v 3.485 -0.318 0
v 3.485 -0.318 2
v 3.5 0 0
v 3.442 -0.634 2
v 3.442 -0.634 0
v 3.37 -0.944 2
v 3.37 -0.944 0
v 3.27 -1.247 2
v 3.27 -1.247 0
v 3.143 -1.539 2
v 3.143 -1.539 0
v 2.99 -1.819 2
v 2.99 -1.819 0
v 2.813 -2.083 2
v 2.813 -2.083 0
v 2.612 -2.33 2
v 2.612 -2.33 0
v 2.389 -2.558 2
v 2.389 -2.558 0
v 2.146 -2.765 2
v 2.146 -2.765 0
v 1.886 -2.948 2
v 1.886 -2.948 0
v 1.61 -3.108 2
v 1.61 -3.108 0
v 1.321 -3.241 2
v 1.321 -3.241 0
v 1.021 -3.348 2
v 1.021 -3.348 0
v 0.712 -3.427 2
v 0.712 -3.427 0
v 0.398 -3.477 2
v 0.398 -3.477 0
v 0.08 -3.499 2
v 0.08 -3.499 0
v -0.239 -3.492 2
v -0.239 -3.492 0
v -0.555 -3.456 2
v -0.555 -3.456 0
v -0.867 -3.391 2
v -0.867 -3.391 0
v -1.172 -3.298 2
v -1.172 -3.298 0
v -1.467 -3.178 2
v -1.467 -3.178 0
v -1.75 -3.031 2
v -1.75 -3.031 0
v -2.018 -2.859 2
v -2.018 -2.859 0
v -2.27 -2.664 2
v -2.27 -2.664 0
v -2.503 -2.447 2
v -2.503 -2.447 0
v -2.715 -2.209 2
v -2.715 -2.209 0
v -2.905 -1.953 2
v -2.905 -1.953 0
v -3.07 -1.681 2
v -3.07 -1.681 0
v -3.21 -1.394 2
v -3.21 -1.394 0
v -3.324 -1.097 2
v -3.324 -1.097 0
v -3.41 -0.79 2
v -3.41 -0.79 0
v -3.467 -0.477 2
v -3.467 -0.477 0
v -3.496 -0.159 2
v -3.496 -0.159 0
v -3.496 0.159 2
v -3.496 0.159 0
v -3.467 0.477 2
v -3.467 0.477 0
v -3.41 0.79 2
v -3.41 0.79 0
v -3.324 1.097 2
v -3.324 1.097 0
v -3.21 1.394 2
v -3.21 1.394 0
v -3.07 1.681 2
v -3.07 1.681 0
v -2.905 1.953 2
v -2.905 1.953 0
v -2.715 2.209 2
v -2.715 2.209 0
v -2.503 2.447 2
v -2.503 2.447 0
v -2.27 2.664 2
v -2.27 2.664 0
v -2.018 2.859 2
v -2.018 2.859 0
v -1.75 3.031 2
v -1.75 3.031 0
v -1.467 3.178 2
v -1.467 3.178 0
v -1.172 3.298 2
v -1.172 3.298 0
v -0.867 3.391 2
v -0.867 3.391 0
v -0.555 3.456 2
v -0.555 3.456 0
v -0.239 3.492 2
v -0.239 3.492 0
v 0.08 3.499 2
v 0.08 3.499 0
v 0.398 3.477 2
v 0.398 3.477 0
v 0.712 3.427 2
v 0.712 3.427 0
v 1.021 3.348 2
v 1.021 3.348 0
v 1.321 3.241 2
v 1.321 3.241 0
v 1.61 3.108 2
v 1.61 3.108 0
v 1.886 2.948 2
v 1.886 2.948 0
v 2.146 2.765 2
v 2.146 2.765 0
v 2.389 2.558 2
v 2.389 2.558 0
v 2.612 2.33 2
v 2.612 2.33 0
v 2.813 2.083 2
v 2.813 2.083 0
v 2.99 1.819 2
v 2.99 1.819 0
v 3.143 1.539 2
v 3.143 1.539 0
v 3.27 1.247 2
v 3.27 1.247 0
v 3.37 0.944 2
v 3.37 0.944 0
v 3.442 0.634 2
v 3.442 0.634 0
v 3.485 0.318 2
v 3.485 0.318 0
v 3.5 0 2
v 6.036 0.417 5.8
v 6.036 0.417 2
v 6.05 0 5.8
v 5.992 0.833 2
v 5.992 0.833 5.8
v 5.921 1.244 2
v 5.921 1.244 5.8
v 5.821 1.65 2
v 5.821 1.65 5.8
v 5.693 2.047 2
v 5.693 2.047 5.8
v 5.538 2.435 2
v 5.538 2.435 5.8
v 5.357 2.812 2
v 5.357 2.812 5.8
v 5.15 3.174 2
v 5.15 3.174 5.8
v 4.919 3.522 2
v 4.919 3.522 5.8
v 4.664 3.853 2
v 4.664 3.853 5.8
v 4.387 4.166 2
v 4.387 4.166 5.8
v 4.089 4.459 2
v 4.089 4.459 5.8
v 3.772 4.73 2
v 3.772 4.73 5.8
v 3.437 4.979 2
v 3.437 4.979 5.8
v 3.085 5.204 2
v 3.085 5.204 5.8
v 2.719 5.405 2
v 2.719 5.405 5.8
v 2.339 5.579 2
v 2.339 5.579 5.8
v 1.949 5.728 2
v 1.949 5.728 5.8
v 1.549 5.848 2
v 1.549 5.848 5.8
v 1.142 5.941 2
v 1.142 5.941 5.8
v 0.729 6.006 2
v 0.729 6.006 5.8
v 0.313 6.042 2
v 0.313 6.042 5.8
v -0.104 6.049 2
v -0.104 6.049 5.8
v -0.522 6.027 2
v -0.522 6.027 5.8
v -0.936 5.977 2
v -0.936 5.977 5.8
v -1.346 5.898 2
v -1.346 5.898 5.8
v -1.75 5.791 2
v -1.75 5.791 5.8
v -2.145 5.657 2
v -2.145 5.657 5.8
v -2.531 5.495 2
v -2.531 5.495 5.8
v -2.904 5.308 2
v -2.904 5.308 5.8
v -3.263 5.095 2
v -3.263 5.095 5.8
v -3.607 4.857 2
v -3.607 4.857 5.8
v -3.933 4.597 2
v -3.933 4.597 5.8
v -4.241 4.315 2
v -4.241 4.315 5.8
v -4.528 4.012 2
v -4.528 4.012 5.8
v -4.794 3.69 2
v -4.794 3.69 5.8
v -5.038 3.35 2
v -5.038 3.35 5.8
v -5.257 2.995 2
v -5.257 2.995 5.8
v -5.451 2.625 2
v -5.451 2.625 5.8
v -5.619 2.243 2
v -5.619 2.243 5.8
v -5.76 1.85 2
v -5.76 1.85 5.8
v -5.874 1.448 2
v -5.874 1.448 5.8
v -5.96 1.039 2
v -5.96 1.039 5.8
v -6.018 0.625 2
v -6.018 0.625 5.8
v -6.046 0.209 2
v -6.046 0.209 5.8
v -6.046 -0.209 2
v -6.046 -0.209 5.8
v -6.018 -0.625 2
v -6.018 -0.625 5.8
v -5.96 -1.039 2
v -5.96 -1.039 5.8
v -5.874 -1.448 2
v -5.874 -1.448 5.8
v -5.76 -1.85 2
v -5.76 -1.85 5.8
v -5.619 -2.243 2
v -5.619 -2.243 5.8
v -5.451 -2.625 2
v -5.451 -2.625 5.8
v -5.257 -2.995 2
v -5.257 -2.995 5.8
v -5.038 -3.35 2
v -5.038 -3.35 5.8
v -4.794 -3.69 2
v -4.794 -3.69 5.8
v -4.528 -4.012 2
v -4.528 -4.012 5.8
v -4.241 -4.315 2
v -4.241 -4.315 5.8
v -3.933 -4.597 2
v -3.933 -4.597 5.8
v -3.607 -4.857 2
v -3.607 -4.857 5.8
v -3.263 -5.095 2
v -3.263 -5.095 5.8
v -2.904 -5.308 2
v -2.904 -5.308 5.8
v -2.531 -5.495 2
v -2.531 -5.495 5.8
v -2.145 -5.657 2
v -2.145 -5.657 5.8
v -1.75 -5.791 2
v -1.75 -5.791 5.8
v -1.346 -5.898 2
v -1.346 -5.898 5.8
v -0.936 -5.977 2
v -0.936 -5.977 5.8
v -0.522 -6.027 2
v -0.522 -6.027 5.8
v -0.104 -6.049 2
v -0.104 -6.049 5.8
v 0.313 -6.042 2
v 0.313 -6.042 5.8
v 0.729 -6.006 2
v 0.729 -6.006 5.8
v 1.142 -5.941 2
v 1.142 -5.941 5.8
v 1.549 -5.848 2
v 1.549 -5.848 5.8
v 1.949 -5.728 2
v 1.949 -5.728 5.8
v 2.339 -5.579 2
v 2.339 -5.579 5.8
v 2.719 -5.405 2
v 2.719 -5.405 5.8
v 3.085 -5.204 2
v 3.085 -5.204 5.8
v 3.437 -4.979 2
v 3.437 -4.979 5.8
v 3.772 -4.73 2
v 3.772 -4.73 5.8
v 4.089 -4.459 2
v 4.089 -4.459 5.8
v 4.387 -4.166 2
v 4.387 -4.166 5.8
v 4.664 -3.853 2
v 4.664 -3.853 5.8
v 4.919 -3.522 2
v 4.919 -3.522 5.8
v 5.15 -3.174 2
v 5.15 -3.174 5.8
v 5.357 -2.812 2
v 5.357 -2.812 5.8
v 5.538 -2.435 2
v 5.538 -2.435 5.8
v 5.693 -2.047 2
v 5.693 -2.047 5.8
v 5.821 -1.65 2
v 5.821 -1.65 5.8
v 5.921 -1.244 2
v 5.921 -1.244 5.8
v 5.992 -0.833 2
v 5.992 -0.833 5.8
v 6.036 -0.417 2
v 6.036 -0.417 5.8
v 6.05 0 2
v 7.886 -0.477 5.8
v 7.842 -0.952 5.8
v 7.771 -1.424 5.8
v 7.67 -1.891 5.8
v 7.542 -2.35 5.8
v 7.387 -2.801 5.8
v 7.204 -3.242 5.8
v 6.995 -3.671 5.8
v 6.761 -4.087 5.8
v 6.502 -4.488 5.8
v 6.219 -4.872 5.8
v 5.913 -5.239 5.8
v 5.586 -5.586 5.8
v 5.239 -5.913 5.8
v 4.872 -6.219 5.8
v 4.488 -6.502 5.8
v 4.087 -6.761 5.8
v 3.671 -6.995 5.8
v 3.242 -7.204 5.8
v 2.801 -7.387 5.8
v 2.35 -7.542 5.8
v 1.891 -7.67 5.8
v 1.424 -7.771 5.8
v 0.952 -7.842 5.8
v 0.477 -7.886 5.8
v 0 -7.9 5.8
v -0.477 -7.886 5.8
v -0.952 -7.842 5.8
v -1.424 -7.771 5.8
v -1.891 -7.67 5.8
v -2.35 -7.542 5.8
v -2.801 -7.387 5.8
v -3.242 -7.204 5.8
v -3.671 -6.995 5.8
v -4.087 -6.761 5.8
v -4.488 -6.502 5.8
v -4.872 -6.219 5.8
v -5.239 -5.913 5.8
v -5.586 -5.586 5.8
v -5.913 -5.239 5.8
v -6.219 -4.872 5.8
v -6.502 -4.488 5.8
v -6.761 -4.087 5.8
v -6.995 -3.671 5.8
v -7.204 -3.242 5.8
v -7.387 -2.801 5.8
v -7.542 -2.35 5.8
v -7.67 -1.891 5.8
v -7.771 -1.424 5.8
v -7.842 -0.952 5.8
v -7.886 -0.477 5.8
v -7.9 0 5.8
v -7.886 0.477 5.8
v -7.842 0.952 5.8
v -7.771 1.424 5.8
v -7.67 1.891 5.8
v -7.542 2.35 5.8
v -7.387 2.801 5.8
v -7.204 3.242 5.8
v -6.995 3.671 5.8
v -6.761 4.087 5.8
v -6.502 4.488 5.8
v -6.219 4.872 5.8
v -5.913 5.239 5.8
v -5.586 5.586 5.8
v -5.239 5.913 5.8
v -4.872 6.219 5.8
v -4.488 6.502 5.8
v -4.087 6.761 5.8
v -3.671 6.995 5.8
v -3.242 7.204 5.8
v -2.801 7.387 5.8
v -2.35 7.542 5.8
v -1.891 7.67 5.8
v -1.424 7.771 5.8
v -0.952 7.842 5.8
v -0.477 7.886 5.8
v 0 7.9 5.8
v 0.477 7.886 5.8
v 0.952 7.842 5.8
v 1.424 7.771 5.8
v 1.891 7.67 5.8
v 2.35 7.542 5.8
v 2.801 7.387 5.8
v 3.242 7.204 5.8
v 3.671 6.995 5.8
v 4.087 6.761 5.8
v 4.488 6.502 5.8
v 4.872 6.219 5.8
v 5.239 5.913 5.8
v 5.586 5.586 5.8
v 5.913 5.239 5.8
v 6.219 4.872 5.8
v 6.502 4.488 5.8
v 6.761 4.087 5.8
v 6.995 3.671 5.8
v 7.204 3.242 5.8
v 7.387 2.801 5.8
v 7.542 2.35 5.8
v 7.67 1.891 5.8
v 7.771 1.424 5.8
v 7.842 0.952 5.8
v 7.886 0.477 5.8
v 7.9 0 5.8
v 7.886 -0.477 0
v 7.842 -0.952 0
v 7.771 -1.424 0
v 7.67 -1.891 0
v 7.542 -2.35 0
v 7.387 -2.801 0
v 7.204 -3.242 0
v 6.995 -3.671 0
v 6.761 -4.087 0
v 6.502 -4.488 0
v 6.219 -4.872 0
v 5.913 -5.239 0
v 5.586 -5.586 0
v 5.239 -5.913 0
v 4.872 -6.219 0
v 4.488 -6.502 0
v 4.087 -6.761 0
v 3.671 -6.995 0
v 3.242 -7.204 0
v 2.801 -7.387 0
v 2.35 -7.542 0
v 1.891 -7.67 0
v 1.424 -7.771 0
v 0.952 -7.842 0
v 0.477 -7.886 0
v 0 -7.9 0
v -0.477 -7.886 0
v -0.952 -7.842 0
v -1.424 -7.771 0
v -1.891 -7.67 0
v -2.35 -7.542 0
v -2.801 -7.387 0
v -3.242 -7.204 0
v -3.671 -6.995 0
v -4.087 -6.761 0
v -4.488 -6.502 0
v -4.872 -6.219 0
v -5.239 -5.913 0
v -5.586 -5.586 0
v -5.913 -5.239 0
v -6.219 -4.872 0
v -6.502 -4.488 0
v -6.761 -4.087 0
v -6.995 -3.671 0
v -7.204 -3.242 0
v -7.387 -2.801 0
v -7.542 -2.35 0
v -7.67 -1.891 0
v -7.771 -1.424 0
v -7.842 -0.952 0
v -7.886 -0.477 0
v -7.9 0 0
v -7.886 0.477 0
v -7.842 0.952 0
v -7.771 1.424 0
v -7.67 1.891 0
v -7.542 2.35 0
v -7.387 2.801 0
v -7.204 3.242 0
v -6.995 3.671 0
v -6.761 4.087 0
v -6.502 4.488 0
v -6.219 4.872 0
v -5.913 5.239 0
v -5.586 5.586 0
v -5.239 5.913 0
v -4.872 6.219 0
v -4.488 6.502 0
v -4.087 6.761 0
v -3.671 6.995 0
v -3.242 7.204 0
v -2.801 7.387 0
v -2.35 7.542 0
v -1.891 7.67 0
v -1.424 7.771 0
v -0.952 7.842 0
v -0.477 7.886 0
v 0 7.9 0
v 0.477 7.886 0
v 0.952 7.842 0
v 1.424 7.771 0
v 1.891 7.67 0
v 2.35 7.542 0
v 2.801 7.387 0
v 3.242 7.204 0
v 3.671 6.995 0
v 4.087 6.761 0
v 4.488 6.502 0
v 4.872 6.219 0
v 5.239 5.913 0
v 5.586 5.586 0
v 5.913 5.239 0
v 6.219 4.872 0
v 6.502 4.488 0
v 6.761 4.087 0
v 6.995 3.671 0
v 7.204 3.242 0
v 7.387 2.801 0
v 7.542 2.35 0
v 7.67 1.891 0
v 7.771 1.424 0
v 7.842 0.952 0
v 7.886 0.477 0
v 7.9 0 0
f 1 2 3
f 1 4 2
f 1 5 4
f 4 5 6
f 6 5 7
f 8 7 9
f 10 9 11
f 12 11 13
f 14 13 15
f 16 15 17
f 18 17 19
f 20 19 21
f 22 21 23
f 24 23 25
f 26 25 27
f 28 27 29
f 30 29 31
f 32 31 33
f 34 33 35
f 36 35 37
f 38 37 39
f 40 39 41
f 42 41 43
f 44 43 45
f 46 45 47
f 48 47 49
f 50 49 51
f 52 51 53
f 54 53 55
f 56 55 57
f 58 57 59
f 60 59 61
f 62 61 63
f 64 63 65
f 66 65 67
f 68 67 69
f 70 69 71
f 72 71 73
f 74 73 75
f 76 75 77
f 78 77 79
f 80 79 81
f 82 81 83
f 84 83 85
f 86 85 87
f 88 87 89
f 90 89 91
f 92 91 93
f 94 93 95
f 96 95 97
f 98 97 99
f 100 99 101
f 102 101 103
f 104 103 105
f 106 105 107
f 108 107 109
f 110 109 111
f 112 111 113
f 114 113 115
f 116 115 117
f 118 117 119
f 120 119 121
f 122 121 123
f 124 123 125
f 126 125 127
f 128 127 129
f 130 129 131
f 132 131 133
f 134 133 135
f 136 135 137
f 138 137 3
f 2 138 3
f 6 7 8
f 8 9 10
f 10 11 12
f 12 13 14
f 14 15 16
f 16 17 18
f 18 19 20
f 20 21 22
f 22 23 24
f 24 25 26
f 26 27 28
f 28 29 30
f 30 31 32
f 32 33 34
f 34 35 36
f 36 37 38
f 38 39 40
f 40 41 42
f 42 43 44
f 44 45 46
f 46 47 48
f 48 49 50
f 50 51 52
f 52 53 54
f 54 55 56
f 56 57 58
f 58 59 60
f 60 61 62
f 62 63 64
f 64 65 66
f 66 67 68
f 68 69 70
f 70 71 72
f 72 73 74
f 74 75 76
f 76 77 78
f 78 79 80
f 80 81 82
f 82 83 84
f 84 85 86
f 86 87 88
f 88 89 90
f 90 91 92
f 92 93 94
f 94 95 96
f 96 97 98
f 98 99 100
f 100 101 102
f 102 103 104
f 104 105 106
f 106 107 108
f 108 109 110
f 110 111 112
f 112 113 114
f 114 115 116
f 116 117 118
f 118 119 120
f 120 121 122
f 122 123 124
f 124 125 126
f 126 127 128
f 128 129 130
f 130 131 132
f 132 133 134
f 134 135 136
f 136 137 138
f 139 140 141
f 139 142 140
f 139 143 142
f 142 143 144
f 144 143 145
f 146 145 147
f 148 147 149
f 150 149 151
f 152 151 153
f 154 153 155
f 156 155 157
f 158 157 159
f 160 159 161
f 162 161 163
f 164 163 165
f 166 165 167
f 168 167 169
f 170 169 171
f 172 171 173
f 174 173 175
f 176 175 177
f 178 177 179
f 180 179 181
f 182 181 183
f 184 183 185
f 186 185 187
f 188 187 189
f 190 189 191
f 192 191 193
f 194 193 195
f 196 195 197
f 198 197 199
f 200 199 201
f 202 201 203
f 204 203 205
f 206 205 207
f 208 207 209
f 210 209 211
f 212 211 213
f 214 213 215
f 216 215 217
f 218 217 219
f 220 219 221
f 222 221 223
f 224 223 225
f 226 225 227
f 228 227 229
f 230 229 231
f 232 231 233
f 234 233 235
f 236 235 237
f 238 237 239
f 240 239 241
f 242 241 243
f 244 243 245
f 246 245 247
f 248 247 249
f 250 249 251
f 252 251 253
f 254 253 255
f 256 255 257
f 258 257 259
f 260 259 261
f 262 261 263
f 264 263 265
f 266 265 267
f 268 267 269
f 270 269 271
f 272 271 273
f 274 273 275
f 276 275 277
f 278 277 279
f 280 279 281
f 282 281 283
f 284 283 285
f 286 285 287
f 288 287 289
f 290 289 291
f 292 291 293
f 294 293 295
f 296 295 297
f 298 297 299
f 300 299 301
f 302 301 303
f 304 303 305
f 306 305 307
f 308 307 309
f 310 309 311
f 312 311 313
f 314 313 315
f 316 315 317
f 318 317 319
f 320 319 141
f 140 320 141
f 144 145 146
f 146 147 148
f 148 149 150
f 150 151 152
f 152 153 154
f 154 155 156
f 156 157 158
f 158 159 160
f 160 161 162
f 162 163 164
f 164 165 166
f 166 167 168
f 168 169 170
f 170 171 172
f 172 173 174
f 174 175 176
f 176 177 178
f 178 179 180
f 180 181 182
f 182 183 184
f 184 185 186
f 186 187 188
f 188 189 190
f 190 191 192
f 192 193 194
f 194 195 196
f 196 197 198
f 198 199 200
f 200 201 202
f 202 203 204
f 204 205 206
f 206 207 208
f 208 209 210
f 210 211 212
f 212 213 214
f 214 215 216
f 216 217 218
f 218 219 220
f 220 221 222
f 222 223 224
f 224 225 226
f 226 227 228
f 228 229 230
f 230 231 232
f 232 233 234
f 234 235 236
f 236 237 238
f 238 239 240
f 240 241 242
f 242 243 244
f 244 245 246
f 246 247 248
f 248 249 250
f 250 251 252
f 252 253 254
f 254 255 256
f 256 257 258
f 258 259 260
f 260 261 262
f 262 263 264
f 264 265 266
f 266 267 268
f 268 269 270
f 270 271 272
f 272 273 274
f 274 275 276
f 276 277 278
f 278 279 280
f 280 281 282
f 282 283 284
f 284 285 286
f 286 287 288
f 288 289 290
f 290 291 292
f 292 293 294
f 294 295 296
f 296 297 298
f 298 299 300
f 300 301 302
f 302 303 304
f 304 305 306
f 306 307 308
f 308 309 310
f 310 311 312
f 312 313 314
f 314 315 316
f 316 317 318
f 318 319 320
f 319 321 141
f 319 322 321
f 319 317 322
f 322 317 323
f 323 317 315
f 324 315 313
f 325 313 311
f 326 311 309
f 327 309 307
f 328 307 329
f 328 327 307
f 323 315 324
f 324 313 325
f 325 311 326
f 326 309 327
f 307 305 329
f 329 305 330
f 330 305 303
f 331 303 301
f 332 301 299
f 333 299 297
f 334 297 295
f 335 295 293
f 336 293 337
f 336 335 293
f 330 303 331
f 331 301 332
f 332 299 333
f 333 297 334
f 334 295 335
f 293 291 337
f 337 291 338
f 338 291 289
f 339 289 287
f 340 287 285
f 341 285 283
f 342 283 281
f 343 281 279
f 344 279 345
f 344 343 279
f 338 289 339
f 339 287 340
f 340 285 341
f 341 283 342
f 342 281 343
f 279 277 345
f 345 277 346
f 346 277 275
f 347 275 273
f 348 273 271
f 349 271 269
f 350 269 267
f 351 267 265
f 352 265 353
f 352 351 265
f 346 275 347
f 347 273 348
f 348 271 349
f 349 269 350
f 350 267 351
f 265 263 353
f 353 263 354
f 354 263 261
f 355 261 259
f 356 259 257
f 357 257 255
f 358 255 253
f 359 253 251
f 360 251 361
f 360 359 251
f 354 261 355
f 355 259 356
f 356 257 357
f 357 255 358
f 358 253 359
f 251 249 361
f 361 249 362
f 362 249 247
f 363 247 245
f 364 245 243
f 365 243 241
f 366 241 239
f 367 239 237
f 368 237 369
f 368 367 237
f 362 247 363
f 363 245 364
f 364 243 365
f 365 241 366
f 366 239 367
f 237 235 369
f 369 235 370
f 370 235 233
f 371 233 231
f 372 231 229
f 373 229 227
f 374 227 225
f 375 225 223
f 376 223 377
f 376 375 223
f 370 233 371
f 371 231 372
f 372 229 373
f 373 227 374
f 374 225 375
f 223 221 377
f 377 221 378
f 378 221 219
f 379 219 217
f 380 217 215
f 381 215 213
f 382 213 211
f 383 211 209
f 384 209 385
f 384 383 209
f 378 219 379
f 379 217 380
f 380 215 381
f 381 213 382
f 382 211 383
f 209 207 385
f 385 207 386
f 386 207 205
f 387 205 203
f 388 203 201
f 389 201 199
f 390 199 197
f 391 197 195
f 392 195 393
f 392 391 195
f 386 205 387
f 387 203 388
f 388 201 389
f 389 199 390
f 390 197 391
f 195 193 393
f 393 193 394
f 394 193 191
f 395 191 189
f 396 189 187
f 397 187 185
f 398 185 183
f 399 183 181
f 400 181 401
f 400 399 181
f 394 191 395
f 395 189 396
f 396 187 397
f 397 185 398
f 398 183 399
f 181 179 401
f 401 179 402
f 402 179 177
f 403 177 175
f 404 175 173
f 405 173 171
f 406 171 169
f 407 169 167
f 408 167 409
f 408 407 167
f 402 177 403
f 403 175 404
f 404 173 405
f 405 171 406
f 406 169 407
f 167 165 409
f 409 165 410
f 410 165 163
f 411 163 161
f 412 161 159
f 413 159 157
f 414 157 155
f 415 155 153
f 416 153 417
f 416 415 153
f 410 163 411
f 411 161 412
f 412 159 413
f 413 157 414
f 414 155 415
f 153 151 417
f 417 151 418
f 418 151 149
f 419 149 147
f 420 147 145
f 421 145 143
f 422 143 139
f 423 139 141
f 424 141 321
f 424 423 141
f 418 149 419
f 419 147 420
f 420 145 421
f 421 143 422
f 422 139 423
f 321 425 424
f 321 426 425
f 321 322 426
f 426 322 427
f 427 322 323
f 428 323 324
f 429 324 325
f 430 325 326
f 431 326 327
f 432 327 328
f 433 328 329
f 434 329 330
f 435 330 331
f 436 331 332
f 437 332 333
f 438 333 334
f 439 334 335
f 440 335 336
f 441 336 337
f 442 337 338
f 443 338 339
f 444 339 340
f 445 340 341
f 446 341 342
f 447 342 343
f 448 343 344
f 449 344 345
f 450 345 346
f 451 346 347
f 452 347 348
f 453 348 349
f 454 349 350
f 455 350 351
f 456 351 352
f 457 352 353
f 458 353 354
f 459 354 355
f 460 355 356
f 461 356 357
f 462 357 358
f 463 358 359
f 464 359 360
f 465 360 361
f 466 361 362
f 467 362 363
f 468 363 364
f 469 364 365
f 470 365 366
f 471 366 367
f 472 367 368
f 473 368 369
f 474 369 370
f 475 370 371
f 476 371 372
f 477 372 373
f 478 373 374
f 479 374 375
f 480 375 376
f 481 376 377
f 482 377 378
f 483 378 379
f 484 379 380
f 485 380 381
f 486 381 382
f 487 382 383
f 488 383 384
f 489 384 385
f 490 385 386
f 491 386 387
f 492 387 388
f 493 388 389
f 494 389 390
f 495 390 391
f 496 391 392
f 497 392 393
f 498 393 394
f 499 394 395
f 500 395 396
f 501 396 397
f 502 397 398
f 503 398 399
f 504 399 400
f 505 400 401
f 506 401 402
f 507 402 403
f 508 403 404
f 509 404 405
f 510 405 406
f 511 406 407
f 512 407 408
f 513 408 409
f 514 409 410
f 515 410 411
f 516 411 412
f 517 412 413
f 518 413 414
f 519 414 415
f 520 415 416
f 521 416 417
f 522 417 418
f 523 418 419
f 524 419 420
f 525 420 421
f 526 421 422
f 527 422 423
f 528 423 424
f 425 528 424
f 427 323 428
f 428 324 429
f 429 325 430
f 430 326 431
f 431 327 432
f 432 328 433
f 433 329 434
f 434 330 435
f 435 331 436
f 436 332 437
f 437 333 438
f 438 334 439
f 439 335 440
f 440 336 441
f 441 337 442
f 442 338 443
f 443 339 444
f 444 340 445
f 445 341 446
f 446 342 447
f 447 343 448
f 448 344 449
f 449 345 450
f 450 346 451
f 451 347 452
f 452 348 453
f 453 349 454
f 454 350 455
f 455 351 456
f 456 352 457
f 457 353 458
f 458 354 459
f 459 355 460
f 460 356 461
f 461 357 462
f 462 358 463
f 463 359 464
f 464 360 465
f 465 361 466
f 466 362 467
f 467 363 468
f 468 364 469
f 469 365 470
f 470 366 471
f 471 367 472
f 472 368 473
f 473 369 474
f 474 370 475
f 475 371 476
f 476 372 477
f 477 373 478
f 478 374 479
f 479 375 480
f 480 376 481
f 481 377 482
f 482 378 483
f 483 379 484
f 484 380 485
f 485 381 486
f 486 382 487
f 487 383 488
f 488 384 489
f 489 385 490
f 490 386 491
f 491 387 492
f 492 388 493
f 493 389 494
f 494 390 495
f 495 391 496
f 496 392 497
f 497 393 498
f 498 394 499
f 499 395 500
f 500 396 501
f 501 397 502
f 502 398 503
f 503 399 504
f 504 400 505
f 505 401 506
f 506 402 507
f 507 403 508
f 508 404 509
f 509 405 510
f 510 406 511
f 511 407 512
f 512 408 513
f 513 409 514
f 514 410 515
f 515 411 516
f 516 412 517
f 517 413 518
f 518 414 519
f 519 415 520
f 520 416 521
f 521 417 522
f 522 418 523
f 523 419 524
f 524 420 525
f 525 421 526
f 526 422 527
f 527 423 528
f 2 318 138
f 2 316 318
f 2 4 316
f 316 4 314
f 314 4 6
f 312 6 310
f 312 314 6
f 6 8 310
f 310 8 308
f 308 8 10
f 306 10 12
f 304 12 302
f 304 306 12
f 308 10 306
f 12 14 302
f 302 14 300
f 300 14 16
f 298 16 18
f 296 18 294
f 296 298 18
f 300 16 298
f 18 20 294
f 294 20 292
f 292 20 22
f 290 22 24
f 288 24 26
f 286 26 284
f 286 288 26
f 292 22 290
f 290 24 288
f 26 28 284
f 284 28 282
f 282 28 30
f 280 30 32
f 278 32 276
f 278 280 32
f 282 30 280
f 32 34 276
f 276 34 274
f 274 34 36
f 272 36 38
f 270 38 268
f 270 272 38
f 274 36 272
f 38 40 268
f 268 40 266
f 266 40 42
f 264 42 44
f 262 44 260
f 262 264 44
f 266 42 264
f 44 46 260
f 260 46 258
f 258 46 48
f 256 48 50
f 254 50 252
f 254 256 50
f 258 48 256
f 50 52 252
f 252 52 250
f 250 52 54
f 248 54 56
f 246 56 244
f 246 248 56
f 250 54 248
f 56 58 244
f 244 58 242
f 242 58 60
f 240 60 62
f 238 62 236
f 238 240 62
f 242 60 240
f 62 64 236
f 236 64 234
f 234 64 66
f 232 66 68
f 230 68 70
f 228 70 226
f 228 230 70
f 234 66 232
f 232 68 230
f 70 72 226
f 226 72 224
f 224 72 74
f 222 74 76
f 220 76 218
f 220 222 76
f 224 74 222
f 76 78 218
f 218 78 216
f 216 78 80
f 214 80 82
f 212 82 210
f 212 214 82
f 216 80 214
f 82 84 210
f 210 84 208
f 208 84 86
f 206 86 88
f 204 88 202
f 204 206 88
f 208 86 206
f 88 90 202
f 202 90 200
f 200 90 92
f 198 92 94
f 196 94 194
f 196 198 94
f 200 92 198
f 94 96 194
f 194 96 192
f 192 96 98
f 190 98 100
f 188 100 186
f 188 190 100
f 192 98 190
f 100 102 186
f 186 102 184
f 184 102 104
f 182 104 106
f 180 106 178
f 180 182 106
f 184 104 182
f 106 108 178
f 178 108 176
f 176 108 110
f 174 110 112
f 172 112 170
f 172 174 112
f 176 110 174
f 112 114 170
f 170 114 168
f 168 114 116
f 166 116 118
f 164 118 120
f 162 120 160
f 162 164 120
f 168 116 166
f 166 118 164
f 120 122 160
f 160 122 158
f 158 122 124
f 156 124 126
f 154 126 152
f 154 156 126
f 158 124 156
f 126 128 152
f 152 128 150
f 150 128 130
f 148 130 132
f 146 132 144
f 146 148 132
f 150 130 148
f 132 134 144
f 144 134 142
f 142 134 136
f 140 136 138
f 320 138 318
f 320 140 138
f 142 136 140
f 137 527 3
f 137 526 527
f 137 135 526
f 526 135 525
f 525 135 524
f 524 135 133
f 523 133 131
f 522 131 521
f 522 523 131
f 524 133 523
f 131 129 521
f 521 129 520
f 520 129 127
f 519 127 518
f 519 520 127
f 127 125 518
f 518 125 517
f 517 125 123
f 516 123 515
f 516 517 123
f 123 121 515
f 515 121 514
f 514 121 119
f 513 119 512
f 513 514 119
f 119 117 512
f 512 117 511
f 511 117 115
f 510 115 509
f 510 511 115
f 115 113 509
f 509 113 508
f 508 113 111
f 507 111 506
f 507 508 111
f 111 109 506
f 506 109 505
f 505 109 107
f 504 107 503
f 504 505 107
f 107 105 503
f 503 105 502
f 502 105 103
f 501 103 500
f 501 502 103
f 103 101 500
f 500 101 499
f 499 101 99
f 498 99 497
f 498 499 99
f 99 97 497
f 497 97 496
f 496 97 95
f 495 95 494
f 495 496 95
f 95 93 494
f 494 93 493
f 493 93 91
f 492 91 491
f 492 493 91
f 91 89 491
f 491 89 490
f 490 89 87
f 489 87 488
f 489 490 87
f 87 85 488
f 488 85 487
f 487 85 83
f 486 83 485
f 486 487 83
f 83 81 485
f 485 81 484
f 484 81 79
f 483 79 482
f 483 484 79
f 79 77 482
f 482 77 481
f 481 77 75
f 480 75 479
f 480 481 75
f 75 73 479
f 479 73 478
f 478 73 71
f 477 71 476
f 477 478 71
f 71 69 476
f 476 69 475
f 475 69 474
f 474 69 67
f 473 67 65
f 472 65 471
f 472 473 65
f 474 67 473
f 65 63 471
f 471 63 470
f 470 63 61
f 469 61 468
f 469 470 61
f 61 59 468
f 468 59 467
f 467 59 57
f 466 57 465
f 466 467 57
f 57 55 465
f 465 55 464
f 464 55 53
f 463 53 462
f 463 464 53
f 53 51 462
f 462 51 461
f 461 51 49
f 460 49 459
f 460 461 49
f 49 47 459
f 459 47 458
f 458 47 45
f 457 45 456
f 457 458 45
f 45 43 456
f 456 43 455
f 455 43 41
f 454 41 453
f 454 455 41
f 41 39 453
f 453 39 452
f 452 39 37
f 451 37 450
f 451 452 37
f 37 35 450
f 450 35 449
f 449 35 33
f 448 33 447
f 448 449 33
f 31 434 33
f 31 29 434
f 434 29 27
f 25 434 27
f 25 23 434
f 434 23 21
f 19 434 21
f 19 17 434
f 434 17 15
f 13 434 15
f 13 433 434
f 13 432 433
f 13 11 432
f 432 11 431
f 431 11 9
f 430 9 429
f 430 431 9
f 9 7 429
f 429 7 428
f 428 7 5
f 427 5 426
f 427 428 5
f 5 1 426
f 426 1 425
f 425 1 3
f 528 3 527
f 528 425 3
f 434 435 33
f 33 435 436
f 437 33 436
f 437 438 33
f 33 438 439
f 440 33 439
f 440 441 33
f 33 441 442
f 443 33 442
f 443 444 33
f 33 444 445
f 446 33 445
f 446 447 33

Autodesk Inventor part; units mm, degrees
ref_plane "YZ Plane" through (0, 0, 0) normal (1, 0, 0) x (0, 1, 0)
ref_plane "XZ Plane" through (0, 0, 0) normal (0, 1, 0) x (-1, 0, 0)
ref_plane "XY Plane" through (0, 0, 0) normal (0, 0, 1) x (1, 0, 0)
sketch "Sketch1" plane through (0, 0, 0) normal (0, 0, 1) x (1, 0, 0)
  circle A0 centre (0, 0) radius 7.9
  dimension "d0" = 15.8
extrude "Extrusion1" add sketch "Sketch1" along normal blind 2
sketch "Sketch2" plane through (0, 0, 2) normal (0, 0, 1) x (1, 0, 0)
  circle A0 centre (0, 0) radius 7.9 projected
  circle A1 centre (0, 0) radius 7.9
  circle A2 centre (0, 0) radius 6.05
  dimension "d4" = 12.1
extrude "Extrusion2" add sketch "Sketch2" along normal blind 3.8
sketch "Sketch3" plane through (0, 0, 2) normal (0, 0, 1) x (1, 0, 0)
  circle A0 centre (0, 0) radius 6.05 projected
  circle A1 centre (0, 0) radius 3.5
  dimension "d8" = 7
extrude "Extrusion3" cut sketch "Sketch3" against normal blind 4 contours A1
properties part number "Bearring cap 8mm"
